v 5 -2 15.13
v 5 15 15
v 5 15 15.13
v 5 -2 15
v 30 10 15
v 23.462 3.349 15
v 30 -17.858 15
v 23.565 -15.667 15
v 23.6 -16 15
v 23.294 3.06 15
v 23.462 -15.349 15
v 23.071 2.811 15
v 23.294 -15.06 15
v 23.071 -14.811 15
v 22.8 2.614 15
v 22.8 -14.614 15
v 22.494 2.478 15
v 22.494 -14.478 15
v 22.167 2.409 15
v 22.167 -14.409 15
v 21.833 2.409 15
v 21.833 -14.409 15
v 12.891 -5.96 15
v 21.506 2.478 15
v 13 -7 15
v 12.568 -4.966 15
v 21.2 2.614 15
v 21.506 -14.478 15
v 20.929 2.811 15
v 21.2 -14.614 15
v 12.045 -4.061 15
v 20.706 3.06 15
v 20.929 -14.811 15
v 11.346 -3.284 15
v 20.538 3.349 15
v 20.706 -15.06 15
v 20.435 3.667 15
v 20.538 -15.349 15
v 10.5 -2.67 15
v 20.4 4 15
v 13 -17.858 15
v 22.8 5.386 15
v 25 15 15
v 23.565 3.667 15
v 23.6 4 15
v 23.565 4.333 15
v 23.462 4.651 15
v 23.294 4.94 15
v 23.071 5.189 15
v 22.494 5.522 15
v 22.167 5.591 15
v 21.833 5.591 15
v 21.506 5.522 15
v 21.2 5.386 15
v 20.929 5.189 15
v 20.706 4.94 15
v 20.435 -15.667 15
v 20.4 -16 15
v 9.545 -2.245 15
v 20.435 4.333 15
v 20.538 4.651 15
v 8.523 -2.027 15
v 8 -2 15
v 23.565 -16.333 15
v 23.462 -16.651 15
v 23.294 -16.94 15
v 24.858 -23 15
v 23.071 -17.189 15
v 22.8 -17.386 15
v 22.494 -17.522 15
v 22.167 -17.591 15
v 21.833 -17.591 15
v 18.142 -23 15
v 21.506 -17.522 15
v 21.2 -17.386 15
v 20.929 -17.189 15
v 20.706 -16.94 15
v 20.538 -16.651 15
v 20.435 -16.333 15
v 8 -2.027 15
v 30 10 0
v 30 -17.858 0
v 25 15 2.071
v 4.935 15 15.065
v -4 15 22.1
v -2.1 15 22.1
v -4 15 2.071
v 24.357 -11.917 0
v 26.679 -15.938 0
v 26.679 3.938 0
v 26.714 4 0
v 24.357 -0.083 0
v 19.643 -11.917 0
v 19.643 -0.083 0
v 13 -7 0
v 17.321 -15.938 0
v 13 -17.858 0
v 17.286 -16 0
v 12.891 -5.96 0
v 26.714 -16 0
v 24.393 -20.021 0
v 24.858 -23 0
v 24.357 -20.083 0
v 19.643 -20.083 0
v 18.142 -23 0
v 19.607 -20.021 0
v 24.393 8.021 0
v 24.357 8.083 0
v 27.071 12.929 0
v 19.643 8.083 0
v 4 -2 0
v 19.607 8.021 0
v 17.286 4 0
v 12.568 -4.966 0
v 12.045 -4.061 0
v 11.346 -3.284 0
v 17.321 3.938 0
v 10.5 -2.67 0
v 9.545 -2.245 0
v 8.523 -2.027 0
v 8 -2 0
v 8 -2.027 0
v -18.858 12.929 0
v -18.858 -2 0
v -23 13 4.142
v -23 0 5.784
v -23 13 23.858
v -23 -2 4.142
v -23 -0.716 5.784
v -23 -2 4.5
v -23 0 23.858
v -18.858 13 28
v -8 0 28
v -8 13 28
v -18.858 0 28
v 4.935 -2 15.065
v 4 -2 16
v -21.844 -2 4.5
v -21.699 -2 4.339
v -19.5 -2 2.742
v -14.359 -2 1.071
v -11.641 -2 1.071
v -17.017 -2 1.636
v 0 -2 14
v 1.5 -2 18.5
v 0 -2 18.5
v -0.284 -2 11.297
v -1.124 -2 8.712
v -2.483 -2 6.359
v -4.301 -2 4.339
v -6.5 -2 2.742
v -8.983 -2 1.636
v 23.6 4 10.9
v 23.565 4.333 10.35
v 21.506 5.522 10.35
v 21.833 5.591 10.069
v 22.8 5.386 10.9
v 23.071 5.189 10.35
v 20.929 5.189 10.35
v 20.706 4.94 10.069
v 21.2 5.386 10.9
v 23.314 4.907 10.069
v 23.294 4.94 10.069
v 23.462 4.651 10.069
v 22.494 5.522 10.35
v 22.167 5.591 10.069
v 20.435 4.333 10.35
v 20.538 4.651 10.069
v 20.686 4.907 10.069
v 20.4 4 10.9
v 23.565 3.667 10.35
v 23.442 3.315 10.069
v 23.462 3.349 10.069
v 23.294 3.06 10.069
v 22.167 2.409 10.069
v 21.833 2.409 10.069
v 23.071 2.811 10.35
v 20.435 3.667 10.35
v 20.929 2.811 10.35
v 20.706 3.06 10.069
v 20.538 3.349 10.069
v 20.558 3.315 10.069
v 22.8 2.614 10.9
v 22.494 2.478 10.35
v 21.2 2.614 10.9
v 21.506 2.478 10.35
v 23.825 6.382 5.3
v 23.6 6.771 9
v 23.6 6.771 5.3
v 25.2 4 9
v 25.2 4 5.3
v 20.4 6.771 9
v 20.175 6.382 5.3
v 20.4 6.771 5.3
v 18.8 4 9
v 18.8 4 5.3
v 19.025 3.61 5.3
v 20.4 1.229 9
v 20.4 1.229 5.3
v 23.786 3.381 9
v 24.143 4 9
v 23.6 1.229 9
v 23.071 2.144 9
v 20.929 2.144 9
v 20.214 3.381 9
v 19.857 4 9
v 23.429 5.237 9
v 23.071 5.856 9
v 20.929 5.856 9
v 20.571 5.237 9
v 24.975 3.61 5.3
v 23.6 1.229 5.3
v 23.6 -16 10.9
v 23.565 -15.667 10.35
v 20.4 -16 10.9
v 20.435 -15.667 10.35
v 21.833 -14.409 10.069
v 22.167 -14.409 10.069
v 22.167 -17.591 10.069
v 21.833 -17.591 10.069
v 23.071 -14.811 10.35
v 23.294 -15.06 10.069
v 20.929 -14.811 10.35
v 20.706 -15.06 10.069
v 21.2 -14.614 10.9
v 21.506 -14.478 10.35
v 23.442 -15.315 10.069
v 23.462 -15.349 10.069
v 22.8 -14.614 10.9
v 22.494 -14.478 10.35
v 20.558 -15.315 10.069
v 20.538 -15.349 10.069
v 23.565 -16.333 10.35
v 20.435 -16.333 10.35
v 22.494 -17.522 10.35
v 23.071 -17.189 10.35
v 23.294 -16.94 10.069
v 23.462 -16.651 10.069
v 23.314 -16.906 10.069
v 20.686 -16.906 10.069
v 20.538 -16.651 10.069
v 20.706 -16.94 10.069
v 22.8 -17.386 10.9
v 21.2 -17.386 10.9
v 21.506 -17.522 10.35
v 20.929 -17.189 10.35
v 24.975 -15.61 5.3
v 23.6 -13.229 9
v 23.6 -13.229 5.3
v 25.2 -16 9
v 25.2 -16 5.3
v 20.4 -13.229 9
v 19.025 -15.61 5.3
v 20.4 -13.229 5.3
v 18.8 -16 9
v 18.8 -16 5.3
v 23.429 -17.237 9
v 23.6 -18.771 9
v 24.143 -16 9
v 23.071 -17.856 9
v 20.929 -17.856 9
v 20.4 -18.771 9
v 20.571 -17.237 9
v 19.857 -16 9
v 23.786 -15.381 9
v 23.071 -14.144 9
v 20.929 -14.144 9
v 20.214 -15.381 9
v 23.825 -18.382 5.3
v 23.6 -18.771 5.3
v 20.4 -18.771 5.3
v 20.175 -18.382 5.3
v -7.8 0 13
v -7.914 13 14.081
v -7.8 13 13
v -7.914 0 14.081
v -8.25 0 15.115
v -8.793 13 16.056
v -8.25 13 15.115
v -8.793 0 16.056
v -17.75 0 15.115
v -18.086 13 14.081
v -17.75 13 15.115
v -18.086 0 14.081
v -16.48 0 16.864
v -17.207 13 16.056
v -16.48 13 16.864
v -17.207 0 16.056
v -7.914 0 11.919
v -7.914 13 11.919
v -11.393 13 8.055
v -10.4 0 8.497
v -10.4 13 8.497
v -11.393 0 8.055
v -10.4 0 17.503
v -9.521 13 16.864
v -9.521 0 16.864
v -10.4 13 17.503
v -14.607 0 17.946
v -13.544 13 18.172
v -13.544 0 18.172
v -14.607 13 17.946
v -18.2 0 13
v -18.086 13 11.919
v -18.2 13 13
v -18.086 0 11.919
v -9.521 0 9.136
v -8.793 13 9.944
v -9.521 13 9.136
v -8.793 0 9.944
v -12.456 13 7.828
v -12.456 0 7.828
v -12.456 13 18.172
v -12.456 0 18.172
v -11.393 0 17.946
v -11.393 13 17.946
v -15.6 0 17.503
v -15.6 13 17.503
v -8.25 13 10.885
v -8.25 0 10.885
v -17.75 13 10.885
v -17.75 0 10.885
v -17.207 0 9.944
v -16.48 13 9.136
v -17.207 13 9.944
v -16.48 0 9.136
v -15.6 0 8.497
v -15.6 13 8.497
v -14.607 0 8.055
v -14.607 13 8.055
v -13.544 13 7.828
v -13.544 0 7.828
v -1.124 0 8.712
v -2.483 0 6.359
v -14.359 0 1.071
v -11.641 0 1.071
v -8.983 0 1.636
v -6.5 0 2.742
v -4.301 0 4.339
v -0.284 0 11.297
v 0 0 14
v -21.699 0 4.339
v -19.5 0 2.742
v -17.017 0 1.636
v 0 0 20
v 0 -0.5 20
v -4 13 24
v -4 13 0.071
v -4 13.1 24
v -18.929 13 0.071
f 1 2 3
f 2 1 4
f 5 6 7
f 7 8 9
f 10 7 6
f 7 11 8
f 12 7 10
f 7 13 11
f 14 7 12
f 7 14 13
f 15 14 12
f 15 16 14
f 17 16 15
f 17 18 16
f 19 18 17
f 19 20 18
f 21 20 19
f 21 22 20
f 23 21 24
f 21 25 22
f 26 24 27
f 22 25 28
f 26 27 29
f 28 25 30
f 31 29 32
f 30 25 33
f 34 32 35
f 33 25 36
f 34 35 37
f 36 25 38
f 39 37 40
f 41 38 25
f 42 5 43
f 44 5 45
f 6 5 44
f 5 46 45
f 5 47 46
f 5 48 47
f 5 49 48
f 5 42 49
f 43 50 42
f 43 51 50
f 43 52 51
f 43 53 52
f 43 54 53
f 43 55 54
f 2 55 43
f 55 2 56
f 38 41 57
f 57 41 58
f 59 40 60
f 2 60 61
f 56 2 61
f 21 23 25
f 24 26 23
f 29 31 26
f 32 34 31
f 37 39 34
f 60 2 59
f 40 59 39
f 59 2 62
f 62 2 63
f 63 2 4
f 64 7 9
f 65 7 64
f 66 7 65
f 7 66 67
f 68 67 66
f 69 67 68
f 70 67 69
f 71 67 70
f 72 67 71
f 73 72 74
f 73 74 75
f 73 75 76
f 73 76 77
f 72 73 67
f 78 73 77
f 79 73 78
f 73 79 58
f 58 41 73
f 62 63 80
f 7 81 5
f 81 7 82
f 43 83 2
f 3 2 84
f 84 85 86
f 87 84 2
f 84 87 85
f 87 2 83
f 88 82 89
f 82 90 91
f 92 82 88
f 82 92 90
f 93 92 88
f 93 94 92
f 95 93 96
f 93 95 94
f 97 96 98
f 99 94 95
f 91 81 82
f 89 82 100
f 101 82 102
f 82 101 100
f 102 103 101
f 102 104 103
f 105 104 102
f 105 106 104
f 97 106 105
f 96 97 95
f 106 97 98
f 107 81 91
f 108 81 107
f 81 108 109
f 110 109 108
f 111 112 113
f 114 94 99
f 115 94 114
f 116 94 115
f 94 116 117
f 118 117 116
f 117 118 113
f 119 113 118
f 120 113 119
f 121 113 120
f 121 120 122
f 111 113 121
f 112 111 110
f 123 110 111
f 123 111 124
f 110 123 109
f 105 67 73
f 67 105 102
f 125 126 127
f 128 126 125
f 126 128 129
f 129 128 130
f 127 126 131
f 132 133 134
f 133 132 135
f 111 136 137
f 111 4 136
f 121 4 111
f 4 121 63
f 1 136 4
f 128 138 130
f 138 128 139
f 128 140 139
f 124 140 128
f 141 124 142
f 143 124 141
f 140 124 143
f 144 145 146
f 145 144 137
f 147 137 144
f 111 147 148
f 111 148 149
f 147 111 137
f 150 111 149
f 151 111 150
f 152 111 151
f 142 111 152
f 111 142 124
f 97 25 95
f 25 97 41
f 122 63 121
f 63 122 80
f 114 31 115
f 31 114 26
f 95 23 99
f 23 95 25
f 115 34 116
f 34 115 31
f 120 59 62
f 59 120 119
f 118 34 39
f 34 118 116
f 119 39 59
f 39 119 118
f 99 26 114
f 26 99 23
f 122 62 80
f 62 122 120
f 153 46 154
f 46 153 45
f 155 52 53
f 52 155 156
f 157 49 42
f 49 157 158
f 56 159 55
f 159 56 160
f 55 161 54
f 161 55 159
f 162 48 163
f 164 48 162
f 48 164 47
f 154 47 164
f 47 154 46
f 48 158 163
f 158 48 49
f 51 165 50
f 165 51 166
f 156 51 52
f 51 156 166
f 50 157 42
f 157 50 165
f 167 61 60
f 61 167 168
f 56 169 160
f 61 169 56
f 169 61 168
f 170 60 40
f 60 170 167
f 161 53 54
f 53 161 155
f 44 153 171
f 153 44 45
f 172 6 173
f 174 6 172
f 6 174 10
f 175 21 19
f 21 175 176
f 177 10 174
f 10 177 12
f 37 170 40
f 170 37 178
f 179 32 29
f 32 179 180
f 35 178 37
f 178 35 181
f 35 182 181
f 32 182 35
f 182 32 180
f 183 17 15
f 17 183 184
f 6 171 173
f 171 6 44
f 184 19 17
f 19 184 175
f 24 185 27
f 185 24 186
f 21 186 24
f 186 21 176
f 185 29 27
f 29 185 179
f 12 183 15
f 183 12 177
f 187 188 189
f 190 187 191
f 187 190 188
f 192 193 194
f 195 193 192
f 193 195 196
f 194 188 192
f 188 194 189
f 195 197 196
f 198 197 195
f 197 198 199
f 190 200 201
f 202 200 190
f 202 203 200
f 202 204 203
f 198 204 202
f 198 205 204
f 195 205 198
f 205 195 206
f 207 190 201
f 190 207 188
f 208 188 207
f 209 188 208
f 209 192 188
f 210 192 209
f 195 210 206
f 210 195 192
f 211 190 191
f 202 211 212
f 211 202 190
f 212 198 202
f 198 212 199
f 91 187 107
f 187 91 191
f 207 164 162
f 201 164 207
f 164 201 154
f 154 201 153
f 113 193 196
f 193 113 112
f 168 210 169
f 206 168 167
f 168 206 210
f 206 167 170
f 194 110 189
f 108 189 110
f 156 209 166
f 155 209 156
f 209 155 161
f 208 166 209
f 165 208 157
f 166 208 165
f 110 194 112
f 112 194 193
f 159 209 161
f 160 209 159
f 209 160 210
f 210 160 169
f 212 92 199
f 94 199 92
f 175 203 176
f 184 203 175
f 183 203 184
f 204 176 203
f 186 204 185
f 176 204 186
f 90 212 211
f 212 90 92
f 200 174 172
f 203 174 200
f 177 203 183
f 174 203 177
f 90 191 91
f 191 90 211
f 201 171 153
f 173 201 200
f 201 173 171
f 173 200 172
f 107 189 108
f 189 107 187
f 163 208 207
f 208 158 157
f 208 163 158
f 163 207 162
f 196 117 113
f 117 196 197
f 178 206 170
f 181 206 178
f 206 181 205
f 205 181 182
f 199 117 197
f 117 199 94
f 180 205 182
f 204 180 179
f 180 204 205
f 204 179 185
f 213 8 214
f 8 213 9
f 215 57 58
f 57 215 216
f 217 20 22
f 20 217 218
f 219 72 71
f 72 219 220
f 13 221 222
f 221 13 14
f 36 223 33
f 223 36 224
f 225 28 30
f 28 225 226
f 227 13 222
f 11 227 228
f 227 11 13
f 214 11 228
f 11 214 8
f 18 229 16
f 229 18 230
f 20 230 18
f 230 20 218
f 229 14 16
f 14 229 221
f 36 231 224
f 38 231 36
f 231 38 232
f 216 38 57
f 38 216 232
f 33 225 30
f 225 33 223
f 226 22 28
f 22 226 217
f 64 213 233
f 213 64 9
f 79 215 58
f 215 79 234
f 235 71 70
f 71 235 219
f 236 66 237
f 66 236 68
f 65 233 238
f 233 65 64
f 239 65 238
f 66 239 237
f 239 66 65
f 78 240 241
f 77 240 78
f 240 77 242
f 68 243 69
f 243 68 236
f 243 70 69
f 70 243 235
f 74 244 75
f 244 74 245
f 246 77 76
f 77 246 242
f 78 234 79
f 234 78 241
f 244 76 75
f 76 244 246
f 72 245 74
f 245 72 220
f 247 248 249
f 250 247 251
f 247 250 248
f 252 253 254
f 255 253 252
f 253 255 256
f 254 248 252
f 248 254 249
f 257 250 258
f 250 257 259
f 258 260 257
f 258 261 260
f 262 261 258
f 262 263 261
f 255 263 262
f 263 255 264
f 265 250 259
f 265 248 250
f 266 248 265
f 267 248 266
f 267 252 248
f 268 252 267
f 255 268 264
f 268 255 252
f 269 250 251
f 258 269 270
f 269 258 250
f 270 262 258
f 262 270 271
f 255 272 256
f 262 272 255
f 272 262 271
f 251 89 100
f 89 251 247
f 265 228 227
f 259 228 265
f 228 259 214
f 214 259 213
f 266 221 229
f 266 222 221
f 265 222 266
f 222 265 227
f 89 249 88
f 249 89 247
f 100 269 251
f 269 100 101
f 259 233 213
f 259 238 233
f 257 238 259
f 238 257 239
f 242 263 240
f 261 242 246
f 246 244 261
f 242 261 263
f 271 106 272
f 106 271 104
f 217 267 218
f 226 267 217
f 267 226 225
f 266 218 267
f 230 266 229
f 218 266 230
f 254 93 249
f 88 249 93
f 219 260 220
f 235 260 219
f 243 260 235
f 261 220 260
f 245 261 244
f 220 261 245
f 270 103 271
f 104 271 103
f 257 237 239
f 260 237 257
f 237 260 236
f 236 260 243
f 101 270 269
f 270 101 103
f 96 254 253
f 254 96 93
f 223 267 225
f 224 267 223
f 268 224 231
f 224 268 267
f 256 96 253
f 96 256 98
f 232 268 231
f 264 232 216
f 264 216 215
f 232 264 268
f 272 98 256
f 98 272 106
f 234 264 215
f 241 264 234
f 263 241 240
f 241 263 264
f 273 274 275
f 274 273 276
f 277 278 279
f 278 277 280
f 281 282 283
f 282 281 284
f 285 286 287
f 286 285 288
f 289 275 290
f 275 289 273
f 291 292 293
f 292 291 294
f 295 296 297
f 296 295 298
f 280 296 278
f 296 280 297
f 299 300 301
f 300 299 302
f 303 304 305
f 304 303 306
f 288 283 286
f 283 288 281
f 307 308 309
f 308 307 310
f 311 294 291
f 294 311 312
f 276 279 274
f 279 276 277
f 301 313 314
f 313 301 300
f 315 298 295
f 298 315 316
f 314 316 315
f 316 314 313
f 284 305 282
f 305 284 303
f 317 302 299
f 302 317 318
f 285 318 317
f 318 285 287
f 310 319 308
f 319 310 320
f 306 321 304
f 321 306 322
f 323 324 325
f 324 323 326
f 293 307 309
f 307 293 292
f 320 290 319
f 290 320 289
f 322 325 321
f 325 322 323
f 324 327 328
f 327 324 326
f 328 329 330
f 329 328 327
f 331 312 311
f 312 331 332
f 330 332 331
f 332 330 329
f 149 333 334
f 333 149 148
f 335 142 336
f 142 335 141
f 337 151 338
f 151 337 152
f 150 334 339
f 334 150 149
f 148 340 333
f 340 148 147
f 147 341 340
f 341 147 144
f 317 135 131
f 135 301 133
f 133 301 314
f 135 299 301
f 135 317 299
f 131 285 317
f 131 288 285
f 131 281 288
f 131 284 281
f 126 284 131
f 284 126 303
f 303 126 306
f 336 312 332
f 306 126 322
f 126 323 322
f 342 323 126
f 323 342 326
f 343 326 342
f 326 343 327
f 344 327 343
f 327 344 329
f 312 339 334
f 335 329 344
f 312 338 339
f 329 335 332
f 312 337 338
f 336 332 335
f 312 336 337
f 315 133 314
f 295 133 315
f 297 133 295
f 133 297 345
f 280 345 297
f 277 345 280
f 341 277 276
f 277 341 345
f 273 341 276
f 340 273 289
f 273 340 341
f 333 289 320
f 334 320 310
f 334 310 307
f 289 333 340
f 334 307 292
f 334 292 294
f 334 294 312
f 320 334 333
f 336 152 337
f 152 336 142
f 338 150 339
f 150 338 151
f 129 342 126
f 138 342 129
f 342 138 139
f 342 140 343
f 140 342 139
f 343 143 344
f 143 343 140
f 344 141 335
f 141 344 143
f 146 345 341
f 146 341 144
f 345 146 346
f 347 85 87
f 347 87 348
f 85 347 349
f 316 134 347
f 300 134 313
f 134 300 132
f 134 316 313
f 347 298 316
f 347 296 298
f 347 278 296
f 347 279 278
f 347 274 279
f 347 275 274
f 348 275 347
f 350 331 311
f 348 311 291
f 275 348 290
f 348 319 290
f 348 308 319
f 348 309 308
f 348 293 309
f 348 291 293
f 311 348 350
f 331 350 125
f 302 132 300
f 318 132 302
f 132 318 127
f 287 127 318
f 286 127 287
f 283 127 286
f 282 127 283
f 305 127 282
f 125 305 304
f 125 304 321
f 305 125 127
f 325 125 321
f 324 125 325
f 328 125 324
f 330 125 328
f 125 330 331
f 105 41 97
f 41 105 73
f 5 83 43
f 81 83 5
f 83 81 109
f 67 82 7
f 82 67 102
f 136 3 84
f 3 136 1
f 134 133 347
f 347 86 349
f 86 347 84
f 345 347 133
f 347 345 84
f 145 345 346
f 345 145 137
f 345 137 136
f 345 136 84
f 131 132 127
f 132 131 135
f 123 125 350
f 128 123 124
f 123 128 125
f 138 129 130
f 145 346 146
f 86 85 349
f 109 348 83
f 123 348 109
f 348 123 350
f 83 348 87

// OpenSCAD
// PRUSA iteration3
// PSU-Y reinforcement part 
// GNU GPL v3
// Josef Průša <iam@josefprusa.cz> and contributors
// http://www.reprap.org/wiki/Prusa_Mendel
// http://prusamendel.org

module base()
{
union(){
    difference(){
        union(){
        translate([ 5, -23, 0 ]) cube([ 25, 38, 15 ]);  // horizontal plate
        translate([ -23, -2, 0 ]) cube([ 28, 17, 28 ]);  // Y_Corner block    
        }
        translate( [ 4 , -25 , -1 ] ) cube( [ 9 , 23 , 18 ] );  //  holder side cut
    }
    difference(){    
        translate([ 8, -7, 0 ]) cube([ 5, 5, 15 ]);  // fillet block
        translate([ 8, -7, -1 ]) cylinder( h = 28, r = 5, $fn=30);  // fillet cut
        }
    }
}


module cutout()
    {

    translate([ 22, 4 , -2 ]) cylinder( h = 20, r = 1.6, $fn=30);  // M3 hole A
    translate([ 22, 4 , -1 ]) cylinder( h = 10, r = 3.2, $fn=6);  // M3 nut body A        
    translate([ 22, 4 , -1 ]) cylinder( h = 14, r1 = 3.2, r1 = 5, $fn=6);  // M3 nut hole fillet A
        
    translate([ 22, -16 , -2 ]) cylinder( h = 20, r = 1.6, $fn=30);  // M3 hole B
    translate([ 22, -16 , -1 ]) cylinder( h = 10, r = 3.2, $fn=6);  // M3 nut body B
    translate([ 22, -16 , -1 ]) cylinder( h = 14, r1 = 3.2, r1 = 5, $fn=6);  // M3 nut hole B fillet

    translate([ -13, 14 , 13 ]) rotate([90,0,0]) cylinder( h = 25, r = 5.2, $fn=30);  // threaded rod
    
    translate([ -13, 0 , 14 ]) rotate([90,0,0]) cylinder( h = 4, r = 13, $fn=30);  // washer
    translate([ -29, -7 , 14 ])  cube([ 29, 7, 18 ]);  // washer upper cut
    
    translate([ -24, 13 , -1 ]) cube([ 20, 15, 30 ]);  // Y_Corner cutaway

    //vertical corners 45 degree cut
    translate( [ 12, -31 , -2 ] ) rotate( [0,0,45] ) cube([ 10 , 10 , 21 ]);  
    translate([ 31,  9, -2 ])  rotate( [0,0,45] ) cube([ 10, 10, 21 ]);  
    translate([ 31, -31, -2 ]) rotate( [0,0,45] ) cube([ 10, 10, 21 ]);  

    // horizontal corners 45 degree cut
    translate([ -8.5, -8, 28.5 ]) rotate( [0,45,0] ) cube([ 19, 40, 20 ]);  
    translate([ -31, -6, 30 ]) rotate( [0,45,0])  cube([ 10, 35, 10 ]);  
    translate([ -31, -6, -2 ]) rotate( [0,45,0] ) cube([ 10, 35, 10 ]);  
    translate([ -26, -4,  2.5 ]) rotate( [45,0,0] ) cube([ 5, 5, 5 ]);  
    translate([ -1, -4, 16.5 ]) rotate( [45,0,0] ) cube([ 5, 5, 5 ]);  
    translate([ -5, 16.6, 20.5 ]) rotate( [45,0,0] ) cube([ 5, 5, 5 ]);  
    translate([ -30, 15, -5 ]) rotate( [45,0,0] ) cube([ 70, 5, 5 ]);  
}

module final_part(){
difference()
{
    base();
    cutout();
    }
}

final_part();
